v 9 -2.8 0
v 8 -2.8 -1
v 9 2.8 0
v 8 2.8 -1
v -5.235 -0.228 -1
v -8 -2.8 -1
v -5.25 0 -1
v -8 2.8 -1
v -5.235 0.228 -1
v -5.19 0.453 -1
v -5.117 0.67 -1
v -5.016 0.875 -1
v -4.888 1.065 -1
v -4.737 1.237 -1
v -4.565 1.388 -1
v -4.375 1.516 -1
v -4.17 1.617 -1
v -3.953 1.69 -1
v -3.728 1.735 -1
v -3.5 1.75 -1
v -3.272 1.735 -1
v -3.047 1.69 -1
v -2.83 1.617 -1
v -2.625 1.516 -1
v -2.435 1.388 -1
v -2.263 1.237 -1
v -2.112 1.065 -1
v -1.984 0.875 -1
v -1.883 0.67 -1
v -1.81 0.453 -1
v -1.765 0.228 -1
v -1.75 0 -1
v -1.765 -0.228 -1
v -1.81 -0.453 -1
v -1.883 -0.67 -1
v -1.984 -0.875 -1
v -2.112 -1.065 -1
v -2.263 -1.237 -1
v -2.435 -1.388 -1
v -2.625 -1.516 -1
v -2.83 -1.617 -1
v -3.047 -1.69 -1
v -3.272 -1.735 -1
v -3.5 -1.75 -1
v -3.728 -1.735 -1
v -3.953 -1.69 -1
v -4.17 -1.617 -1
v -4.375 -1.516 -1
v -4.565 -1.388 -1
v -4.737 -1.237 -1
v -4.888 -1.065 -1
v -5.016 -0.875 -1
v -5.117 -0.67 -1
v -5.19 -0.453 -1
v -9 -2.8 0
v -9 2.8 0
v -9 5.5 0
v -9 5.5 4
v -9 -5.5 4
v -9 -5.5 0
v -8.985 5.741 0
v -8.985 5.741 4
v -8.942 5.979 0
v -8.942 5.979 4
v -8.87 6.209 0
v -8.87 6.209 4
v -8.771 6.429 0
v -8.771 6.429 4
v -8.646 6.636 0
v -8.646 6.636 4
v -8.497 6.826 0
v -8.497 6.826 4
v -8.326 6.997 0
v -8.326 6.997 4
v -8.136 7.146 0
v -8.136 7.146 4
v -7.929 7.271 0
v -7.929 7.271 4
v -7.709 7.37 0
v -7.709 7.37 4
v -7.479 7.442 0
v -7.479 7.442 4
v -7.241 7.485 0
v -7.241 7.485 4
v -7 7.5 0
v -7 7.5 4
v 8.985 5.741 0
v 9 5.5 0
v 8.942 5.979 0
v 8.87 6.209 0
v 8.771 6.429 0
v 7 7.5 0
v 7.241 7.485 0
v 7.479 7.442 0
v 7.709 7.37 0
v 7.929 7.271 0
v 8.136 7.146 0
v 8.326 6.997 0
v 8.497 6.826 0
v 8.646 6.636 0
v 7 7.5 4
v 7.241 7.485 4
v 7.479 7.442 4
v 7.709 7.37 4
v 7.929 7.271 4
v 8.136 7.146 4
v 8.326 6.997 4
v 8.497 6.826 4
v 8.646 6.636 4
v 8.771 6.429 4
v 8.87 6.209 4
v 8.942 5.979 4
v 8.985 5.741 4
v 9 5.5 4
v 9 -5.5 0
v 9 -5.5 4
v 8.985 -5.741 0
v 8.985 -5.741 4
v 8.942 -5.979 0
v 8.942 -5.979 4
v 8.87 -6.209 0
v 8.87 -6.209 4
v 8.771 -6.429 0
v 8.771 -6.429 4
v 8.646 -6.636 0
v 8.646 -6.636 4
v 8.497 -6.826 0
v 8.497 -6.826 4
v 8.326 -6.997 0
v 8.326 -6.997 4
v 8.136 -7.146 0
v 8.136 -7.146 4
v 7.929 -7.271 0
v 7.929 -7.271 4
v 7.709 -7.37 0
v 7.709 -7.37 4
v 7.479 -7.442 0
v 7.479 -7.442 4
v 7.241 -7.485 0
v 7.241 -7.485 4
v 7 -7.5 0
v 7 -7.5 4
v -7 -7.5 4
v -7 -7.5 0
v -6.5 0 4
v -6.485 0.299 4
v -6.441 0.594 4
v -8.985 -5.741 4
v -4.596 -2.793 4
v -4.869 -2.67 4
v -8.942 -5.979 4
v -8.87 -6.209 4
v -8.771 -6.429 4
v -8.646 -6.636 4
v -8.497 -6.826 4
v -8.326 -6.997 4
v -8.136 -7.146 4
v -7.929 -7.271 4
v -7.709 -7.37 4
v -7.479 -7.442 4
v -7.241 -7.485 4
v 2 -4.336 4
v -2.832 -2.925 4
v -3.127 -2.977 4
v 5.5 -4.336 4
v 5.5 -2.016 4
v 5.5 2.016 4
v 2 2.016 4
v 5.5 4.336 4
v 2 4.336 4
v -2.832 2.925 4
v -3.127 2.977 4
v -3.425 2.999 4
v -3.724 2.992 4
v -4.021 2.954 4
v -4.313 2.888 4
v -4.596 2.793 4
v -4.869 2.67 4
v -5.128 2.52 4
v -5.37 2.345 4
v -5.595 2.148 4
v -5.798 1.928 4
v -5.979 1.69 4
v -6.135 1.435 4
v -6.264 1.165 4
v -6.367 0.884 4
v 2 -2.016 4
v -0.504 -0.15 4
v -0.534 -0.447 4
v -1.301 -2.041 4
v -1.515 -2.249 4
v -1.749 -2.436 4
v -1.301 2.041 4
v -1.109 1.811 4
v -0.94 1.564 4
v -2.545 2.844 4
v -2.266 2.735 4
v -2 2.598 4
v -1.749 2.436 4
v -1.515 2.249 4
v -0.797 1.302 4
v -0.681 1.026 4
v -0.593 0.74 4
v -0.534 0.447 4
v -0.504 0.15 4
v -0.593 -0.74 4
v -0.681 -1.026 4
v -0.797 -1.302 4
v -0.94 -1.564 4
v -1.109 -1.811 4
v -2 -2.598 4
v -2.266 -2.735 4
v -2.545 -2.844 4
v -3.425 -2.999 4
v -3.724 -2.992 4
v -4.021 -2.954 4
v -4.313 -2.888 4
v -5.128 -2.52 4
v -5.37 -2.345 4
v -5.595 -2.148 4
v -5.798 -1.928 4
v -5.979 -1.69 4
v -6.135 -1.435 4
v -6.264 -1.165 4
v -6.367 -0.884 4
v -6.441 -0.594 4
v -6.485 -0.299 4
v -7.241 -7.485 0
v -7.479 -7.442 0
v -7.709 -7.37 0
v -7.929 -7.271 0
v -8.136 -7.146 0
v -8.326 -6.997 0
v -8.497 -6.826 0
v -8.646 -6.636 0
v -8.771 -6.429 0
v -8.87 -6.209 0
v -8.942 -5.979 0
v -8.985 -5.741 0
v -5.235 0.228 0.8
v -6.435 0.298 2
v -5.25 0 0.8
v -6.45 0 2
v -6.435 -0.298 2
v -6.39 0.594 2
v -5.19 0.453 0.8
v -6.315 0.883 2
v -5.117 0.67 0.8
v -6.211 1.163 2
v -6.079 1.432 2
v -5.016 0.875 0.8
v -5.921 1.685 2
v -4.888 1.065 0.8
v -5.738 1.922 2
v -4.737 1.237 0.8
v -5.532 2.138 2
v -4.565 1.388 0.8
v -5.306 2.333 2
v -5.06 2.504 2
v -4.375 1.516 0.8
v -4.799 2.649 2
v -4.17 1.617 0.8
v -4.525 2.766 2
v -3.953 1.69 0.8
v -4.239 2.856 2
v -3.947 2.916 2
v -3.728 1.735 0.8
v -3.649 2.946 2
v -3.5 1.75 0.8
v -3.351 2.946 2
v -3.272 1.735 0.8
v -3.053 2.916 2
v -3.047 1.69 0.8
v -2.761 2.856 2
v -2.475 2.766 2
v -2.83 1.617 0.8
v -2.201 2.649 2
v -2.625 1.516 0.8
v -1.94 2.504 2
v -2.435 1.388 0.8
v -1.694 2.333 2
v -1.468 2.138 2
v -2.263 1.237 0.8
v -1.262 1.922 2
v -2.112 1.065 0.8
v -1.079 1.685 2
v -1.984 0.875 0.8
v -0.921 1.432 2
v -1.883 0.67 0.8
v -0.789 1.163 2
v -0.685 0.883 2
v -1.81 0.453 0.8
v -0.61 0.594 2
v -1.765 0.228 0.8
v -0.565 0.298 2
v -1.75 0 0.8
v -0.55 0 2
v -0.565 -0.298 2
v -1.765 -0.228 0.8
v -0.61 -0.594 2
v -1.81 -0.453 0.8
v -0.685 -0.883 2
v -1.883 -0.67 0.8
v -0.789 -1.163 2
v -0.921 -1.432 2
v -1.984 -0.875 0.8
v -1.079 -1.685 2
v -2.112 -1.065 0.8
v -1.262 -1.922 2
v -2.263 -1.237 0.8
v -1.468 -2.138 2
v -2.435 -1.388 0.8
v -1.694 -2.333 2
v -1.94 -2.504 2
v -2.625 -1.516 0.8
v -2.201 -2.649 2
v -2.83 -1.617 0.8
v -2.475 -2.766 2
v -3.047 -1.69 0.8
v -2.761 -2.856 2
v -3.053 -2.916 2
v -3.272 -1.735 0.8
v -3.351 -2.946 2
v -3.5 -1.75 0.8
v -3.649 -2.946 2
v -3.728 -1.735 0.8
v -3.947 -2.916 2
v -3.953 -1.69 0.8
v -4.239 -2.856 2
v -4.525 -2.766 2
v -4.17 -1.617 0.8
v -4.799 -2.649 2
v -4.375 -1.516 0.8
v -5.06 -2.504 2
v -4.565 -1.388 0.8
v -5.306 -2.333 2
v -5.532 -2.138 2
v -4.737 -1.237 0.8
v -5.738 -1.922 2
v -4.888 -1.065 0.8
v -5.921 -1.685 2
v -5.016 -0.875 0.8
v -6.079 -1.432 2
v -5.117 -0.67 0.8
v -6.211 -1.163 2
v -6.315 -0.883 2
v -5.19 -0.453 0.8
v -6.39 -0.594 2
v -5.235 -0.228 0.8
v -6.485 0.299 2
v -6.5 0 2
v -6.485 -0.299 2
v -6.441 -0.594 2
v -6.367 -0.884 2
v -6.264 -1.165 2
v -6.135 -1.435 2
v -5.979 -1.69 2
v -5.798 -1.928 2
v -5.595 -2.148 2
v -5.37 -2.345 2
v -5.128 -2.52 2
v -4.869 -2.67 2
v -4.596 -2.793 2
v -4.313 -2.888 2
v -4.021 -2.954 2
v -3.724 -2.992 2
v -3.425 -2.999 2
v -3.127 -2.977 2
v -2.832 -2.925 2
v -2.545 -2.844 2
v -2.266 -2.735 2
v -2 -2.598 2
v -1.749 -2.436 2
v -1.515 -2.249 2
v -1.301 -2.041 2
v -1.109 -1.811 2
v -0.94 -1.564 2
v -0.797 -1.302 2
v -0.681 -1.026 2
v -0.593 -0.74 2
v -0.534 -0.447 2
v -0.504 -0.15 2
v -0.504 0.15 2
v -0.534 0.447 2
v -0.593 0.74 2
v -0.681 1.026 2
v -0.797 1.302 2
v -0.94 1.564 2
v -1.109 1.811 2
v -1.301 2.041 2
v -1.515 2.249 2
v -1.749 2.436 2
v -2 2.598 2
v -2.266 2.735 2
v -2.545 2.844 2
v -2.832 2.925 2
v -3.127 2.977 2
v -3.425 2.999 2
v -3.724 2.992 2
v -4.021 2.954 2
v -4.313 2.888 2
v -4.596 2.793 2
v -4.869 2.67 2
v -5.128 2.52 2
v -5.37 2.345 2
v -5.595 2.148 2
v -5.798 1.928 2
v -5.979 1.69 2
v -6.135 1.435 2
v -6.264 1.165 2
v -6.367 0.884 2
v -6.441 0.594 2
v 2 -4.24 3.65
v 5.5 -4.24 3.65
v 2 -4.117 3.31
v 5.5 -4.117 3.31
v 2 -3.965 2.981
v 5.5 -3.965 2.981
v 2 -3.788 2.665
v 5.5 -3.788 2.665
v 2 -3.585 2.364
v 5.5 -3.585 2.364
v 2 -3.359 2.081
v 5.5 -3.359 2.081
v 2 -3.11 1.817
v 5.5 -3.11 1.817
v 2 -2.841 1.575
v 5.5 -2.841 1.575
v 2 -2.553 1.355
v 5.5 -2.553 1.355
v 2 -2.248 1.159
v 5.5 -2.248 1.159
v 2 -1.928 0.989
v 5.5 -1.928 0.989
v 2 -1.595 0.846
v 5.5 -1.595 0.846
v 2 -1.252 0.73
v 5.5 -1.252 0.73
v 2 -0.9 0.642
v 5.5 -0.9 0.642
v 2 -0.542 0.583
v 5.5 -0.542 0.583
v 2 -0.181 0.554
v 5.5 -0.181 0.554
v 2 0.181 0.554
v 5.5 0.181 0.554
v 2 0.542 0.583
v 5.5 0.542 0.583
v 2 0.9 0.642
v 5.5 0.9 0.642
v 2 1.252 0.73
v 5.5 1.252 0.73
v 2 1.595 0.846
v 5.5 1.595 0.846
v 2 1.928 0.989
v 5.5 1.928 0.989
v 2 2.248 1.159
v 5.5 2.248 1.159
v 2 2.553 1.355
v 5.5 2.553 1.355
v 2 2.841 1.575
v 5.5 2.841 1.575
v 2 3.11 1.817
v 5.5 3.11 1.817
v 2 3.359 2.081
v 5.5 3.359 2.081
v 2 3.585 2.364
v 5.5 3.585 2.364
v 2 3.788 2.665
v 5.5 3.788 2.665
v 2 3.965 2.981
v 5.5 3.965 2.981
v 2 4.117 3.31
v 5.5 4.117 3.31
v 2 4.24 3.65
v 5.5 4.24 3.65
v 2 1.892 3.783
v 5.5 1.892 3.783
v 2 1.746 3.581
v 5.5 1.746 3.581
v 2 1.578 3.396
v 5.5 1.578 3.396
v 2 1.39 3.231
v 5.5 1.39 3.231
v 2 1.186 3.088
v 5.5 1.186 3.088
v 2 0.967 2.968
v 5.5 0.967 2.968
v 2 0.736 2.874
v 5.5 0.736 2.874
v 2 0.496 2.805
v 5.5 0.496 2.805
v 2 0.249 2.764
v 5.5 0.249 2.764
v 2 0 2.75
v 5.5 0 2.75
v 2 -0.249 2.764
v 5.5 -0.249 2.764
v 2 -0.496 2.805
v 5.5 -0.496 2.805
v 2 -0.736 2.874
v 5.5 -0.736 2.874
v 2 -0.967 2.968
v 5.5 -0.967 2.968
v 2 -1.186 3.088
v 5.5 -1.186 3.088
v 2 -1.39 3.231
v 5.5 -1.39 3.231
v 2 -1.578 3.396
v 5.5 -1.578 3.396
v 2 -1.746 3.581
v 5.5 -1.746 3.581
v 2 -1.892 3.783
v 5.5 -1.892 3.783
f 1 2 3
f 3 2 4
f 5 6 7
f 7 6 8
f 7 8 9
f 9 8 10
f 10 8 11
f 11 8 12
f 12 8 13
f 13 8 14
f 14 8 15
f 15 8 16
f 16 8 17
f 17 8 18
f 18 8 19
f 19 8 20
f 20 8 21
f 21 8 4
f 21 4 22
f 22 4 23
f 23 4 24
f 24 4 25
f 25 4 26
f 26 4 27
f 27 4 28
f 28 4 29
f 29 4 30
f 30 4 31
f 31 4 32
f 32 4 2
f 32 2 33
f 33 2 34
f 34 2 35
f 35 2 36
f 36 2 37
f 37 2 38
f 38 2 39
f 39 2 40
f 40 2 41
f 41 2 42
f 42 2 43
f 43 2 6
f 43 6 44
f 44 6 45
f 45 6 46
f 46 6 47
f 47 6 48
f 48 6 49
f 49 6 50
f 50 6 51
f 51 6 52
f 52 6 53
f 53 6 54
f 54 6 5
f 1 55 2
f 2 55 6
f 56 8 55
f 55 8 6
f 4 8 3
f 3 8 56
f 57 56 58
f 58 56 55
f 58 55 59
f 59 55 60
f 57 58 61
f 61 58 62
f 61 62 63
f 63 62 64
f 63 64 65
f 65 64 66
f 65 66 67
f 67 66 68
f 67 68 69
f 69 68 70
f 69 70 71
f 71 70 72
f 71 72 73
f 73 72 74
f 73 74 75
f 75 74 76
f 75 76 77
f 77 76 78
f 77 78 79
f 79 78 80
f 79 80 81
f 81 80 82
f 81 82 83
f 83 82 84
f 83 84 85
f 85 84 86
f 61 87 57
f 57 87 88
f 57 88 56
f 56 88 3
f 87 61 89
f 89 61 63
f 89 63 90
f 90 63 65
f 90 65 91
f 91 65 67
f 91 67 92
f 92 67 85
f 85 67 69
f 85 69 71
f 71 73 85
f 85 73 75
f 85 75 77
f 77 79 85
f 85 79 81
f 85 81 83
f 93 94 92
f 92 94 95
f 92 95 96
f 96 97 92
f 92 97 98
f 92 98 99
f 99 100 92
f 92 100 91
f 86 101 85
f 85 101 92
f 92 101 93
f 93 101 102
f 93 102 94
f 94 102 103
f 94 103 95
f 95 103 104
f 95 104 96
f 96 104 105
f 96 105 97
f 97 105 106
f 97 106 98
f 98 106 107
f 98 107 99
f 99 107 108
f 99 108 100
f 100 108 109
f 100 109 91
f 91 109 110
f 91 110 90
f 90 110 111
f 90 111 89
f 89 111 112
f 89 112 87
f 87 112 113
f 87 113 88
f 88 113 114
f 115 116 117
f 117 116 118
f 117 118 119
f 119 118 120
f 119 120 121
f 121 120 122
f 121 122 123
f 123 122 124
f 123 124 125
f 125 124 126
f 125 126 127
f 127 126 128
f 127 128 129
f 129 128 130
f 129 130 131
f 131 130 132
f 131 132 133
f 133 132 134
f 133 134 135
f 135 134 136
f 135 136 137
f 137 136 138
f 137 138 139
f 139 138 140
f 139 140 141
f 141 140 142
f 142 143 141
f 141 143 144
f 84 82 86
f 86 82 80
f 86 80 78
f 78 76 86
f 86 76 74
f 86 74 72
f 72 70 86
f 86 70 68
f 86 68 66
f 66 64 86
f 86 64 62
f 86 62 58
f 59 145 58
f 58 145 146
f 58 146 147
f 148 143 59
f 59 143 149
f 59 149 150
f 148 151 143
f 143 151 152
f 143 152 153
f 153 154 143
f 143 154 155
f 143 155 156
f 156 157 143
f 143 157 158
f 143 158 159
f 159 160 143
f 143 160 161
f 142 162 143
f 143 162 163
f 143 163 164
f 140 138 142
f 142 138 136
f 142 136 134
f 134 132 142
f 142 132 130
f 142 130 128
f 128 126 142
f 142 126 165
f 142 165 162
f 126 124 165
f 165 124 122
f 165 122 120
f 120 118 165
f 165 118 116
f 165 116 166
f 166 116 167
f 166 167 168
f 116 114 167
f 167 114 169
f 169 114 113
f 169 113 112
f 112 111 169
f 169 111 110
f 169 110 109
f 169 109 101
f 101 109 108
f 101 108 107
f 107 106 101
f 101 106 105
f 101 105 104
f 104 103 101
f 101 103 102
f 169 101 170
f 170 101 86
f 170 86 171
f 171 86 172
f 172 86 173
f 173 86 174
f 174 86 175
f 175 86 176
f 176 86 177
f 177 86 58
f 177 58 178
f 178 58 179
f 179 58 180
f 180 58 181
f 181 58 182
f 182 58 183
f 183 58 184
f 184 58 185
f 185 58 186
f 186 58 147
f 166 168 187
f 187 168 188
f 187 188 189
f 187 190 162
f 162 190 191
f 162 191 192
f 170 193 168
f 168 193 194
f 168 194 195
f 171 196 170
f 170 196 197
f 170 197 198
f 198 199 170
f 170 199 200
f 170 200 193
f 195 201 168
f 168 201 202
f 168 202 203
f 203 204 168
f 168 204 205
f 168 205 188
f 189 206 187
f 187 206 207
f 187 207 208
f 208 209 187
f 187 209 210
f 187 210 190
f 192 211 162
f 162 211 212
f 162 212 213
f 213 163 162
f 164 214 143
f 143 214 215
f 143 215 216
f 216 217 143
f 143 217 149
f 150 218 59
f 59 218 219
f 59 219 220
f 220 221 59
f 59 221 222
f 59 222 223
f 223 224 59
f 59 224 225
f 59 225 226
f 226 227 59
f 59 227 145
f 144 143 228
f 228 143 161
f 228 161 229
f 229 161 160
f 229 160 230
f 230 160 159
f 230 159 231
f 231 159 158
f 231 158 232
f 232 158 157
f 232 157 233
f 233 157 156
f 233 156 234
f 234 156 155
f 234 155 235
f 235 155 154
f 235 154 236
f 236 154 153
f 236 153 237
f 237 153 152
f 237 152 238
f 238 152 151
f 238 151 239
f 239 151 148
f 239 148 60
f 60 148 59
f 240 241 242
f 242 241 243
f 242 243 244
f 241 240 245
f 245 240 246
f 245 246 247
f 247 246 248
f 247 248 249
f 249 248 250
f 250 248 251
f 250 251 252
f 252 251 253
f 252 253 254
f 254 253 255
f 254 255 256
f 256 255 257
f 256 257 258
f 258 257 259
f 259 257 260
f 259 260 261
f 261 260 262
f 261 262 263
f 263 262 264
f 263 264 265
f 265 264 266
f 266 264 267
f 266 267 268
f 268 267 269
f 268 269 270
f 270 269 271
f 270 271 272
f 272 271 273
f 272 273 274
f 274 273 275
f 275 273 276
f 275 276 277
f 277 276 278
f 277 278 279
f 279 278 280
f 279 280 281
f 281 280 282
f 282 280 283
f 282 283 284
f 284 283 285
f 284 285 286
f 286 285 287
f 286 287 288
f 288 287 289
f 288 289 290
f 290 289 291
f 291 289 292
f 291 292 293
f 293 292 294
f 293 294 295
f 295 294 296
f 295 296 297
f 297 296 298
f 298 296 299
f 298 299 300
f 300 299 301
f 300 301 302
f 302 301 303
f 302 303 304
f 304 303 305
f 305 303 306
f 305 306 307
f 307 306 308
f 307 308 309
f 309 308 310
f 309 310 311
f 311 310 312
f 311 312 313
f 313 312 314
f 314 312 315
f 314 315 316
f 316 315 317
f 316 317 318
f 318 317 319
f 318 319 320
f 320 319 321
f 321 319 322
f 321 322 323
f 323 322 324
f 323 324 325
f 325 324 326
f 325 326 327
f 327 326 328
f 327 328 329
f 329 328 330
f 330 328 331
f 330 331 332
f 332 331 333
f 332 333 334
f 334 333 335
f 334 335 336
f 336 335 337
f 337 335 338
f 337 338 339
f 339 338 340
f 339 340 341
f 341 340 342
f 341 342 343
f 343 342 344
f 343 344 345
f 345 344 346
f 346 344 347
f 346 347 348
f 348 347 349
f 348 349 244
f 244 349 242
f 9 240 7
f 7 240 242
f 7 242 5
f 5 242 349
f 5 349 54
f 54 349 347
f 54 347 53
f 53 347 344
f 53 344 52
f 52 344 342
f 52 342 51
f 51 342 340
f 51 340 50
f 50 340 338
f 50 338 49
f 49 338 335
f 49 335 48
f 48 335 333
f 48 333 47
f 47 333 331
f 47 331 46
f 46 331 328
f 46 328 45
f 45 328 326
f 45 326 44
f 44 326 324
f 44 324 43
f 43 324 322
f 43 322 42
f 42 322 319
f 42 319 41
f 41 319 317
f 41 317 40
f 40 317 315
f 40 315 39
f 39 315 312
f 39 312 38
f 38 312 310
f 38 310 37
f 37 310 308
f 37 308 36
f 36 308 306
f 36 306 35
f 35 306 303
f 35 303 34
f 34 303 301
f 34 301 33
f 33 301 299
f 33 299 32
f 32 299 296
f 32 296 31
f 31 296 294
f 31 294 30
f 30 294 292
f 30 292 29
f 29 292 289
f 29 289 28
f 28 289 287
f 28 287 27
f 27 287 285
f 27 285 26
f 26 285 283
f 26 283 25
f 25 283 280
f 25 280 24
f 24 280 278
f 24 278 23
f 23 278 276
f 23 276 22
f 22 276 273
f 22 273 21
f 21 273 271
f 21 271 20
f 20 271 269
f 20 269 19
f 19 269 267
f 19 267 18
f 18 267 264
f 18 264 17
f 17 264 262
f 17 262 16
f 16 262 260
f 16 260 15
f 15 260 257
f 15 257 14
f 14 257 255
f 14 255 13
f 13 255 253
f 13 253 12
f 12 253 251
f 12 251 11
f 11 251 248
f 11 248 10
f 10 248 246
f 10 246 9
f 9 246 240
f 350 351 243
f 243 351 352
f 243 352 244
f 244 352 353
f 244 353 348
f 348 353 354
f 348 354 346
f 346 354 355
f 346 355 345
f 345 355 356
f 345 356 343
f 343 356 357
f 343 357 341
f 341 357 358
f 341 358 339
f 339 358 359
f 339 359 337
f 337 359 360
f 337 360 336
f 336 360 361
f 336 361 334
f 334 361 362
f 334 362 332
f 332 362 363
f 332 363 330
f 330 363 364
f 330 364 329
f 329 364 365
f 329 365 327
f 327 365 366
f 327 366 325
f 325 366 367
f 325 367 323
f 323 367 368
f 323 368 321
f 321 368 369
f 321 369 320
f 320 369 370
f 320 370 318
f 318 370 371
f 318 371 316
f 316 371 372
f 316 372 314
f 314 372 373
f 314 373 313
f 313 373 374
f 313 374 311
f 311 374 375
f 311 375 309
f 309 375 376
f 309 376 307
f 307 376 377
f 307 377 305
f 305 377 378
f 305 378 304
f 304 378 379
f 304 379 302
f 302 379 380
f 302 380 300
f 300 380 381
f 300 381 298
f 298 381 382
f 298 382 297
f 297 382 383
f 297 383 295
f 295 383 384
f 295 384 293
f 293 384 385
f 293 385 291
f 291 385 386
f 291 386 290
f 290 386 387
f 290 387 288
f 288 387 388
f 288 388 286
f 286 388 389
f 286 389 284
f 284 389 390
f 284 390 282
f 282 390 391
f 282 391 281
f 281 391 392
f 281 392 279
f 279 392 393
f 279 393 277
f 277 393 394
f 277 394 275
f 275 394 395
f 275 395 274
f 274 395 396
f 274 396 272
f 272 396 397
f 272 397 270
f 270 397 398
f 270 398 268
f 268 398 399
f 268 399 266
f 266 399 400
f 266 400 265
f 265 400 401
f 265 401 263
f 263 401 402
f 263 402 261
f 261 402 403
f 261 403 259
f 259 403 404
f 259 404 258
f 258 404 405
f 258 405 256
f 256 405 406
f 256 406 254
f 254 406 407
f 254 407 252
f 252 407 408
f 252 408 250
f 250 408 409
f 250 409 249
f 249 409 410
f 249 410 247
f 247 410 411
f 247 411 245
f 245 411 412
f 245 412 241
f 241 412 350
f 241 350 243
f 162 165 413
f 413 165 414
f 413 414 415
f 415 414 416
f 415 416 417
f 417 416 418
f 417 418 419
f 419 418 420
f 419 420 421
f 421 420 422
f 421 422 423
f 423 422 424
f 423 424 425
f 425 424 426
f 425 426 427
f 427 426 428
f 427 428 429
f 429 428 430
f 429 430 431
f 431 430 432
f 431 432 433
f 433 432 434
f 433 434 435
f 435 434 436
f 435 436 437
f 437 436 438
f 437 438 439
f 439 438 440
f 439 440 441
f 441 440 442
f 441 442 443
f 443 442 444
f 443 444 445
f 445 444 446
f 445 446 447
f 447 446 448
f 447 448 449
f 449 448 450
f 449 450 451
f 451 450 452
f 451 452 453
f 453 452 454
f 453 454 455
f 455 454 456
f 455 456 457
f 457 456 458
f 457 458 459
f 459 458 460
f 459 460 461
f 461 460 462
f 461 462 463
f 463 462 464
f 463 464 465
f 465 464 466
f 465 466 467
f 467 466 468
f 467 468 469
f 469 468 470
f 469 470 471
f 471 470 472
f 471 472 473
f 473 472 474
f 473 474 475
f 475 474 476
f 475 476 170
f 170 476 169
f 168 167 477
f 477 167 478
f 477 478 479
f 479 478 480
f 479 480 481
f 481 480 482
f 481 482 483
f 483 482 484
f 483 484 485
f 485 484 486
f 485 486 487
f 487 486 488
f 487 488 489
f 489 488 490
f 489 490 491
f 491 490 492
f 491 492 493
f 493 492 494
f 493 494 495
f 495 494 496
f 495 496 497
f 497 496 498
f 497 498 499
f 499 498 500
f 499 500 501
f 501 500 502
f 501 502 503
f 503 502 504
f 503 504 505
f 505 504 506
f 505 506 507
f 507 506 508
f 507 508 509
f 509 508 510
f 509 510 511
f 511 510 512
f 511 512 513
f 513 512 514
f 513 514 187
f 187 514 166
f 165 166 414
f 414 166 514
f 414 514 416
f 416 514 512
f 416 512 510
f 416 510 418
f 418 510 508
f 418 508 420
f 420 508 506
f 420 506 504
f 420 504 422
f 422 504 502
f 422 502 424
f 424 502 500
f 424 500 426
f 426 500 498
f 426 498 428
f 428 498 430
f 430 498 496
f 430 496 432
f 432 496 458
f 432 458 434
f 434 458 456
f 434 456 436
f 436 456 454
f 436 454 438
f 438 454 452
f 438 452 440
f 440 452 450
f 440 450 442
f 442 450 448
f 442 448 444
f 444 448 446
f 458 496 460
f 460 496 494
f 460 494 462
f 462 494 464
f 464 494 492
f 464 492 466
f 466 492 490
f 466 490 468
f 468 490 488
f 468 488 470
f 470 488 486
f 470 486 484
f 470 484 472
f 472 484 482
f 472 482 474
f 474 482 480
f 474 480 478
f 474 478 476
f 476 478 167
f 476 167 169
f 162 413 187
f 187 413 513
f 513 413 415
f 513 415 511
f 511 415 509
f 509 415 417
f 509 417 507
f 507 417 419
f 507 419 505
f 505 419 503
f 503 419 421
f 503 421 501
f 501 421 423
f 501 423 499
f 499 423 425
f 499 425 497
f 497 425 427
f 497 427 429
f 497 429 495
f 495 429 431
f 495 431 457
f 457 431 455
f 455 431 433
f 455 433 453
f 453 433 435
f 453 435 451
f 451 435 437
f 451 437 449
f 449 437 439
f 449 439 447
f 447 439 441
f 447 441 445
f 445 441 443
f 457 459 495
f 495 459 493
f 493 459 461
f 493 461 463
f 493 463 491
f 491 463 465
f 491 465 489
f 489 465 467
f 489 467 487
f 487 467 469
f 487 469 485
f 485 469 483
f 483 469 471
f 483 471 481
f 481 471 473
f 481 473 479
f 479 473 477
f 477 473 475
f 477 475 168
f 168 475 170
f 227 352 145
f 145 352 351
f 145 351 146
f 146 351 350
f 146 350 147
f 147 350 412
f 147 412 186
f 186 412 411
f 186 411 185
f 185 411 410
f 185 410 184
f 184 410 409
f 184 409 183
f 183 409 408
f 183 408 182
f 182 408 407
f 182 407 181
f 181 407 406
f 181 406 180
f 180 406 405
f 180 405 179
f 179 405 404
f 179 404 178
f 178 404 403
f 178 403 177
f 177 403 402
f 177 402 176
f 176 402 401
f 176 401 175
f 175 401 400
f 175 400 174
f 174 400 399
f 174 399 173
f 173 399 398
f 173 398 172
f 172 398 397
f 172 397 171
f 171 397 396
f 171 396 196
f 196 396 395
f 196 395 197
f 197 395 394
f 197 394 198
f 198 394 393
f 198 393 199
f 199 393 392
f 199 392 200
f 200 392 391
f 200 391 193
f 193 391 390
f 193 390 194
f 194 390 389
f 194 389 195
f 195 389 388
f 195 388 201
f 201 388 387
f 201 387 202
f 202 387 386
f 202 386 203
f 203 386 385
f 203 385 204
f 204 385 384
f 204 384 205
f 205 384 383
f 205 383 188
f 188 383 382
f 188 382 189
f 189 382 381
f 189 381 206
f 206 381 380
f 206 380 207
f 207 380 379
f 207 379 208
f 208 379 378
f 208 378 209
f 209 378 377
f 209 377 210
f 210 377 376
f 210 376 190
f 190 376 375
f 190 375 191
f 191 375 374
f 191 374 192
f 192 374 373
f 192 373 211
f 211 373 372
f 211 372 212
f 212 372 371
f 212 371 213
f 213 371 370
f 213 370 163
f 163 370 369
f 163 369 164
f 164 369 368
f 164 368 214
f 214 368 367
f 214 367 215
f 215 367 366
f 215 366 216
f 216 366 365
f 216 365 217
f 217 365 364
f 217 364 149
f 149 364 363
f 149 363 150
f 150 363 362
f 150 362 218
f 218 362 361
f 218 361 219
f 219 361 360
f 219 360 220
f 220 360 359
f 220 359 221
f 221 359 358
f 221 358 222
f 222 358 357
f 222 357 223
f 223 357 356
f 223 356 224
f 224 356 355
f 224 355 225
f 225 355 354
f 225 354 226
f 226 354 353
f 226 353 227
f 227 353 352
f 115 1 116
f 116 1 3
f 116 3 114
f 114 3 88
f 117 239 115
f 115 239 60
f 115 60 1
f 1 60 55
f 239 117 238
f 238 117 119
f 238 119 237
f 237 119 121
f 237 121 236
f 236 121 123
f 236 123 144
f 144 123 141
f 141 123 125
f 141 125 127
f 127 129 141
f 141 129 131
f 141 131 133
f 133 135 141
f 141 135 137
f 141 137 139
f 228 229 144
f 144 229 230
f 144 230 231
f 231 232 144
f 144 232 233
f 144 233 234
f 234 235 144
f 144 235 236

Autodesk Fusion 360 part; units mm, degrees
sketch "Sketch1" plane through (0, 0, 0) normal (0, 0, 1) x (1, 0, 0)
  line L0 (9, 7.5) -> (-9, 7.5)
  line L1 (-9, 7.5) -> (-9, -7.5)
  line L2 (-9, -7.5) -> (9, -7.5)
  line L3 (9, -7.5) -> (9, 7.5)
  line L4 (9, 7.5) -> (-9, -7.5) construction
  line L5 (-9, 7.5) -> (9, -7.5) construction
  circle A0 centre (-3.5, 0) radius 1.75
  circle A1 centre (-3.5, 0) radius 3
  line L6 (9, -2.8) -> (-9, -2.8)
  line L7 (-9, -2.8) -> (-9, 2.8)
  line L8 (-9, 2.8) -> (9, 2.8)
  line L9 (9, 2.8) -> (9, -2.8)
  line L10 (9, -2.8) -> (-9, 2.8) construction
  line L11 (-9, -2.8) -> (9, 2.8) construction
  dimension "d1" = 18
  dimension "d2" = 15
  dimension "d5" = 3.5
  dimension "d6" = 6
  dimension "d9" = 5.6
  dimension "d12" = 3.5
extrude "Extrude1" add sketch "Sketch1" along normal blind 2
extrude "Extrude2" add sketch "Sketch1" along normal blind 4 contours L0 L1 L3 A1 L8 | L3 A1 L6 L8 L9 | L1 A1 L6 L7 L8 | L1 L2 L3 A1 L6
extrude "Extrude3" add sketch "Sketch1" against normal blind 1 contours L3 A1 L6 L8 L9 | L1 A1 L6 L7 L8 | A1 L6 L8
sketch "Sketch2" plane through (9, 0, 0) normal (1, 0, 0) x (0, 1, 0)
  line L0 (-7.5, 0) -> (-2.8, 0)
  line L1 (-2.8, 0) -> (-2.8, -1)
  line L2 (-2.8, -1) -> (2.8, -1)
  line L3 (2.8, -1) -> (2.8, 0)
  line L4 (2.8, 0) -> (7.5, 0)
  line L5 (7.5, 0) -> (7.5, 4)
  line L6 (7.5, 4) -> (-7.5, 4)
  line L7 (-7.5, 4) -> (-7.5, 0)
  circle A0 centre (0, 5) radius 2.25
  circle A1 centre (0, 5) radius 4.45
  line L8 (-7.5, 0) -> (7.5, 0)
  dimension "d13" = 4.5
  dimension "d14" = 2.2
  dimension "d18" = 5
extrude "Extrude4" cut sketch "Sketch2" against normal blind 3.5 from surface at -3.5 contours L6 A0 A1 picked at (-0.2762, 1.3019)
chamfer "Chamfer1" distance 1.2 angle 45 1 edges at (-5.1316, 0.6328, 2)
fillet "Fillet1" radius 2 4 edges at (-9, -7.5, 2) (9, -7.5, 2) (9, 7.5, 2) (-9, 7.5, 2)
chamfer "Chamfer2" distance 1 angle 45 2 edges at (-9, 0, -1) (9, 0, -1)
